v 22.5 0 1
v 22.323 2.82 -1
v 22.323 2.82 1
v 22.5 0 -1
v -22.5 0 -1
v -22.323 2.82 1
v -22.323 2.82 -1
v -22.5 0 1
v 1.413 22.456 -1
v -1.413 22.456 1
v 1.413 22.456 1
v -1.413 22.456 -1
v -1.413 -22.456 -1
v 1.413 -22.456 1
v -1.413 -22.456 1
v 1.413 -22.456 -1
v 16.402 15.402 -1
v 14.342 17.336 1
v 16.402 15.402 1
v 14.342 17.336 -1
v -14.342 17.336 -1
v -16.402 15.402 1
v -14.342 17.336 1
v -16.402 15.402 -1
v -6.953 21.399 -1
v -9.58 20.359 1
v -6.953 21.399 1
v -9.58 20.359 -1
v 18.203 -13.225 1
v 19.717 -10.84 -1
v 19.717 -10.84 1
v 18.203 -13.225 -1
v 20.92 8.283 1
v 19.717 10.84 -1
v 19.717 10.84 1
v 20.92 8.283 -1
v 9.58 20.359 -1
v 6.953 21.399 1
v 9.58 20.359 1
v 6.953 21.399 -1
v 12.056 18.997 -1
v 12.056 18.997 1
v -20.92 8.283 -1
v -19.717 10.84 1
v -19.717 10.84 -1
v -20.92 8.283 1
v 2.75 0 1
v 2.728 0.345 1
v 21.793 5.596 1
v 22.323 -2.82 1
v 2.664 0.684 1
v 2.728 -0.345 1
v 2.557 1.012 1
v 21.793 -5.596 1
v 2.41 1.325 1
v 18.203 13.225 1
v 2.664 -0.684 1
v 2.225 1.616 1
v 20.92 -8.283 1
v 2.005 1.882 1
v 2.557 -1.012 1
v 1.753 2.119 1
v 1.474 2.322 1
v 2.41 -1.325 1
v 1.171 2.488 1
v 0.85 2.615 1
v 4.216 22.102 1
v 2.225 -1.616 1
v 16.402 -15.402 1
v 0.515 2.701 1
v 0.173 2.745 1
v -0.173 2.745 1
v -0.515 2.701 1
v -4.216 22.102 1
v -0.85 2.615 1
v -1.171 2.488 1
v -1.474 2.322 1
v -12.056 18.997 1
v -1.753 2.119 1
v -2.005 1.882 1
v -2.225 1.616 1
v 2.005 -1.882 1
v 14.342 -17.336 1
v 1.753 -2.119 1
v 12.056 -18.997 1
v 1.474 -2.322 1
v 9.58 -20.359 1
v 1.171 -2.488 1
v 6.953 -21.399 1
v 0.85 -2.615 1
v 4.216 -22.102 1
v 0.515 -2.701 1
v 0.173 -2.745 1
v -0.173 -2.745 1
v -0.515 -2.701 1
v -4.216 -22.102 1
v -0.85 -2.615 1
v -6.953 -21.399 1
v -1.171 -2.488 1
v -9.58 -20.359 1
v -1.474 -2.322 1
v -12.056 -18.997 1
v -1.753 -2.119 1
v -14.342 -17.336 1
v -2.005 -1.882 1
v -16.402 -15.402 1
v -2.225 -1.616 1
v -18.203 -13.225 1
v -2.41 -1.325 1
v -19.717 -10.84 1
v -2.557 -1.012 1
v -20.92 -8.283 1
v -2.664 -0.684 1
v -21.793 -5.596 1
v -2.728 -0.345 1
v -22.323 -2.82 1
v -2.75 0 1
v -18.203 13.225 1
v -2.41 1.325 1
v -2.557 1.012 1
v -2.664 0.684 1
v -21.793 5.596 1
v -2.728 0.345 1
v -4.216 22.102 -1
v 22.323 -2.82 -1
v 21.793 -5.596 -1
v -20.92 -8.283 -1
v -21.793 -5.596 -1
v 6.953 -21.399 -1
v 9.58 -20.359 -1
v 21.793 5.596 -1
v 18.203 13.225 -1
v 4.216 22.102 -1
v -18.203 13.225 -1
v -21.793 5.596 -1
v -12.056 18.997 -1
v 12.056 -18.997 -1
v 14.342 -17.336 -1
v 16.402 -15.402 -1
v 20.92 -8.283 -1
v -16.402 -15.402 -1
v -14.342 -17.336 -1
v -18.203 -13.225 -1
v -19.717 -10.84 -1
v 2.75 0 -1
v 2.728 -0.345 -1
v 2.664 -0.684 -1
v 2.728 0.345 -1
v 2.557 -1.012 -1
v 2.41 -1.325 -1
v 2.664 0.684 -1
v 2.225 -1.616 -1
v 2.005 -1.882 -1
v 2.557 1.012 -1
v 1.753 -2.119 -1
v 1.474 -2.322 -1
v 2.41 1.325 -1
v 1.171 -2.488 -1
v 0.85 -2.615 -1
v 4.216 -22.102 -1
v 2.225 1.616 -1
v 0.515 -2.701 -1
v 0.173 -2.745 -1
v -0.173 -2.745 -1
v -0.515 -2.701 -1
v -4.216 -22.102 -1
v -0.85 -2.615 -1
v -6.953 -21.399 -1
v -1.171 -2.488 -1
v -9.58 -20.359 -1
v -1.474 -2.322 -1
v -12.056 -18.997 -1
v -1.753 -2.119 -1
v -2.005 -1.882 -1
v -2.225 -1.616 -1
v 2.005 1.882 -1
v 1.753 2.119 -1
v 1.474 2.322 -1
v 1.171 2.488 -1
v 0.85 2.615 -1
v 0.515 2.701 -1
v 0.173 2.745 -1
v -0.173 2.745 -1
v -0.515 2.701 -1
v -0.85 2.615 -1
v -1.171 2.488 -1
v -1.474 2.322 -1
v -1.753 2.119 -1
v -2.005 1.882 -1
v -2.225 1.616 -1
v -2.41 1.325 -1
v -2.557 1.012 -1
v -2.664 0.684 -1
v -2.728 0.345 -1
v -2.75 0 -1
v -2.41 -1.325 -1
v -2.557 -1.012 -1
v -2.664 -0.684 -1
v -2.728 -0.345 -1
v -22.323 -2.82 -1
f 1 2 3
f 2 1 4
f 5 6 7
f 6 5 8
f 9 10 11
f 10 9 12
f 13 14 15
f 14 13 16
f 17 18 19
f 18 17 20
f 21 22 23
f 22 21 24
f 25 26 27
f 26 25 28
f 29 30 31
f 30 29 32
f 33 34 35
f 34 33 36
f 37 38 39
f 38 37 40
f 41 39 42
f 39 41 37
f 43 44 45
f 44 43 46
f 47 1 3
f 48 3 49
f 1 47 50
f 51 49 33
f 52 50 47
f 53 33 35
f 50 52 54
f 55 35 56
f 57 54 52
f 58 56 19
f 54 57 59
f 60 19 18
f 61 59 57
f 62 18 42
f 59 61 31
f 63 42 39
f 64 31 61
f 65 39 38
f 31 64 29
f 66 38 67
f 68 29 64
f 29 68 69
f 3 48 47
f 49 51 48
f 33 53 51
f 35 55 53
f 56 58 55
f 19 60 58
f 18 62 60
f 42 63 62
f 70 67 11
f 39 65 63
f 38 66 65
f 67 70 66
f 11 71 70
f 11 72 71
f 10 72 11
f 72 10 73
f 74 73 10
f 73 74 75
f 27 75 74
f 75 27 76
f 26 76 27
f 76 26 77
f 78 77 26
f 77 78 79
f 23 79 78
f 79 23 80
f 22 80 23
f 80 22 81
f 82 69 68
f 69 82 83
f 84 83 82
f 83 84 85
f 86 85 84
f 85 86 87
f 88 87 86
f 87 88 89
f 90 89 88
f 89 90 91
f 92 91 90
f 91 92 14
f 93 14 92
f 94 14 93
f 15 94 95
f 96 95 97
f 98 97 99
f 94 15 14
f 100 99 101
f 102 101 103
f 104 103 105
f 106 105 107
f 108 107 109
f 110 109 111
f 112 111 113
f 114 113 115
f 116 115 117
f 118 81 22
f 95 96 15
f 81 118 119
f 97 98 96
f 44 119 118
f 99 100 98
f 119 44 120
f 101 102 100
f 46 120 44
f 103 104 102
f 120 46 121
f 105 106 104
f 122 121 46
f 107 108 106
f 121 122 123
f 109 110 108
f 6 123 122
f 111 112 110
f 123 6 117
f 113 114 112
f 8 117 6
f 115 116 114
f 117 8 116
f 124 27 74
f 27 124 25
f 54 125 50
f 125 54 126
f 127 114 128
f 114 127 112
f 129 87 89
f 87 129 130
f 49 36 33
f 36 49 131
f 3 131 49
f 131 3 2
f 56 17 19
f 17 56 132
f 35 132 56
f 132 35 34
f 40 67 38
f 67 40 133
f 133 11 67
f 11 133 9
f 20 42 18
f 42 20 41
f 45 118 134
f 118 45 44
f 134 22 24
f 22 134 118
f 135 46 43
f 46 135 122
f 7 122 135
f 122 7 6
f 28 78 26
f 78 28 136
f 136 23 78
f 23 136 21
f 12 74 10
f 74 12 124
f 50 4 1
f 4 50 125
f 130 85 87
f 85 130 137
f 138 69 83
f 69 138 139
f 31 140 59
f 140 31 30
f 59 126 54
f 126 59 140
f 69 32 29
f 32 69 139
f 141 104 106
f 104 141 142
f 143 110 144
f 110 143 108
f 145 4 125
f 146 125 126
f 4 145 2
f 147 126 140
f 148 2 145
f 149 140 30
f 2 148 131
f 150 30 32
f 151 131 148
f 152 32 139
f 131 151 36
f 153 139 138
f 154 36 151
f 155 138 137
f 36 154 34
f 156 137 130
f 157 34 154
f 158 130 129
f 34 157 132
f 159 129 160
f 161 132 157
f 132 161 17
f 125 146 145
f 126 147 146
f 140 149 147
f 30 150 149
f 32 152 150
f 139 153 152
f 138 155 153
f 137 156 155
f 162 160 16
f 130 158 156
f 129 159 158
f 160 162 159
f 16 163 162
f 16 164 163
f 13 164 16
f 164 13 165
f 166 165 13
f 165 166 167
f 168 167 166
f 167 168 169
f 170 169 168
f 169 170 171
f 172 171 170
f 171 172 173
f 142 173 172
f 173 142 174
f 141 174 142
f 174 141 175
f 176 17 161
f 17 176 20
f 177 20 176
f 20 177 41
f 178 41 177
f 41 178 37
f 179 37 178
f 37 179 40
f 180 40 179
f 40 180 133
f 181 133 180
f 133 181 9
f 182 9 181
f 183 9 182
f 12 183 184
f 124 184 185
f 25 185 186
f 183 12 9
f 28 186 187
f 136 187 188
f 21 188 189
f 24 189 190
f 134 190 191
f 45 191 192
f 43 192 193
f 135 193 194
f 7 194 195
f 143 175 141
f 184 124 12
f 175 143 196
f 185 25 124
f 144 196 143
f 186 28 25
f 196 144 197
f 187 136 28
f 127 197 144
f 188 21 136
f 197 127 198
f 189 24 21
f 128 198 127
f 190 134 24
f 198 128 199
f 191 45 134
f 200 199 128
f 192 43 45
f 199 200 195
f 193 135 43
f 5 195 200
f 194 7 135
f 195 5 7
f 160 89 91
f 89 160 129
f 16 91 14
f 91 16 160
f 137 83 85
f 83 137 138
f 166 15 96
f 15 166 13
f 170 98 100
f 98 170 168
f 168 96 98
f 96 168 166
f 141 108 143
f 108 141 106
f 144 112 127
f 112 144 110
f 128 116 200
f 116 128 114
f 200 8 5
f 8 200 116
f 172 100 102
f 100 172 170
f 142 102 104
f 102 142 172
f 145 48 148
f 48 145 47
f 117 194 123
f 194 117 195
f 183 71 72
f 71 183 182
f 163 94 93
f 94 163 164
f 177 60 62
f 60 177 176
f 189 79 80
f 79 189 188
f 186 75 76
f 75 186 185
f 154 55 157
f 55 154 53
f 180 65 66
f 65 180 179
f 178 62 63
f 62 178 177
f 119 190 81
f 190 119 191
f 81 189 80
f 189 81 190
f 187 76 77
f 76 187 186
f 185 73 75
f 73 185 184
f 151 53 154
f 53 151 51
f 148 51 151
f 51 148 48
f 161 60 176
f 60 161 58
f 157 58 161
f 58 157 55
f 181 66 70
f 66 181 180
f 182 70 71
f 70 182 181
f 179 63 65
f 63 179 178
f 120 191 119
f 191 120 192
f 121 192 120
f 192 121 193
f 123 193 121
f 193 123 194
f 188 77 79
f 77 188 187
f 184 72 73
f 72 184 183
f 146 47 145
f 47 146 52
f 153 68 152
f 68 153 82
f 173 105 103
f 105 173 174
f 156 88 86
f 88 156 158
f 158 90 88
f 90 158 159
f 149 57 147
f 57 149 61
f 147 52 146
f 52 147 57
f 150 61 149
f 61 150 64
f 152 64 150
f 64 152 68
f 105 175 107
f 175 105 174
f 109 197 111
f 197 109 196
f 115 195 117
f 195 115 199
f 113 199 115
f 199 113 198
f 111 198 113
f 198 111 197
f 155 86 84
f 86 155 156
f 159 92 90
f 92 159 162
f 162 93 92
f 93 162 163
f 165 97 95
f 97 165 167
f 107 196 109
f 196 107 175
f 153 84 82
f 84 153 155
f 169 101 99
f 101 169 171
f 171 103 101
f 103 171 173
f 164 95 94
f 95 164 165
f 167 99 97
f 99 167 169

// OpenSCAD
$fn = 50;


difference() {
	union() {
		translate(v = [0, 0, -1.0000000000]) {
			cylinder(h = 2, r = 22.5000000000);
		}
	}
	union() {
		translate(v = [0, 0, -100.0000000000]) {
			cylinder(h = 200, r = 2.7500000000);
		}
	}
}
